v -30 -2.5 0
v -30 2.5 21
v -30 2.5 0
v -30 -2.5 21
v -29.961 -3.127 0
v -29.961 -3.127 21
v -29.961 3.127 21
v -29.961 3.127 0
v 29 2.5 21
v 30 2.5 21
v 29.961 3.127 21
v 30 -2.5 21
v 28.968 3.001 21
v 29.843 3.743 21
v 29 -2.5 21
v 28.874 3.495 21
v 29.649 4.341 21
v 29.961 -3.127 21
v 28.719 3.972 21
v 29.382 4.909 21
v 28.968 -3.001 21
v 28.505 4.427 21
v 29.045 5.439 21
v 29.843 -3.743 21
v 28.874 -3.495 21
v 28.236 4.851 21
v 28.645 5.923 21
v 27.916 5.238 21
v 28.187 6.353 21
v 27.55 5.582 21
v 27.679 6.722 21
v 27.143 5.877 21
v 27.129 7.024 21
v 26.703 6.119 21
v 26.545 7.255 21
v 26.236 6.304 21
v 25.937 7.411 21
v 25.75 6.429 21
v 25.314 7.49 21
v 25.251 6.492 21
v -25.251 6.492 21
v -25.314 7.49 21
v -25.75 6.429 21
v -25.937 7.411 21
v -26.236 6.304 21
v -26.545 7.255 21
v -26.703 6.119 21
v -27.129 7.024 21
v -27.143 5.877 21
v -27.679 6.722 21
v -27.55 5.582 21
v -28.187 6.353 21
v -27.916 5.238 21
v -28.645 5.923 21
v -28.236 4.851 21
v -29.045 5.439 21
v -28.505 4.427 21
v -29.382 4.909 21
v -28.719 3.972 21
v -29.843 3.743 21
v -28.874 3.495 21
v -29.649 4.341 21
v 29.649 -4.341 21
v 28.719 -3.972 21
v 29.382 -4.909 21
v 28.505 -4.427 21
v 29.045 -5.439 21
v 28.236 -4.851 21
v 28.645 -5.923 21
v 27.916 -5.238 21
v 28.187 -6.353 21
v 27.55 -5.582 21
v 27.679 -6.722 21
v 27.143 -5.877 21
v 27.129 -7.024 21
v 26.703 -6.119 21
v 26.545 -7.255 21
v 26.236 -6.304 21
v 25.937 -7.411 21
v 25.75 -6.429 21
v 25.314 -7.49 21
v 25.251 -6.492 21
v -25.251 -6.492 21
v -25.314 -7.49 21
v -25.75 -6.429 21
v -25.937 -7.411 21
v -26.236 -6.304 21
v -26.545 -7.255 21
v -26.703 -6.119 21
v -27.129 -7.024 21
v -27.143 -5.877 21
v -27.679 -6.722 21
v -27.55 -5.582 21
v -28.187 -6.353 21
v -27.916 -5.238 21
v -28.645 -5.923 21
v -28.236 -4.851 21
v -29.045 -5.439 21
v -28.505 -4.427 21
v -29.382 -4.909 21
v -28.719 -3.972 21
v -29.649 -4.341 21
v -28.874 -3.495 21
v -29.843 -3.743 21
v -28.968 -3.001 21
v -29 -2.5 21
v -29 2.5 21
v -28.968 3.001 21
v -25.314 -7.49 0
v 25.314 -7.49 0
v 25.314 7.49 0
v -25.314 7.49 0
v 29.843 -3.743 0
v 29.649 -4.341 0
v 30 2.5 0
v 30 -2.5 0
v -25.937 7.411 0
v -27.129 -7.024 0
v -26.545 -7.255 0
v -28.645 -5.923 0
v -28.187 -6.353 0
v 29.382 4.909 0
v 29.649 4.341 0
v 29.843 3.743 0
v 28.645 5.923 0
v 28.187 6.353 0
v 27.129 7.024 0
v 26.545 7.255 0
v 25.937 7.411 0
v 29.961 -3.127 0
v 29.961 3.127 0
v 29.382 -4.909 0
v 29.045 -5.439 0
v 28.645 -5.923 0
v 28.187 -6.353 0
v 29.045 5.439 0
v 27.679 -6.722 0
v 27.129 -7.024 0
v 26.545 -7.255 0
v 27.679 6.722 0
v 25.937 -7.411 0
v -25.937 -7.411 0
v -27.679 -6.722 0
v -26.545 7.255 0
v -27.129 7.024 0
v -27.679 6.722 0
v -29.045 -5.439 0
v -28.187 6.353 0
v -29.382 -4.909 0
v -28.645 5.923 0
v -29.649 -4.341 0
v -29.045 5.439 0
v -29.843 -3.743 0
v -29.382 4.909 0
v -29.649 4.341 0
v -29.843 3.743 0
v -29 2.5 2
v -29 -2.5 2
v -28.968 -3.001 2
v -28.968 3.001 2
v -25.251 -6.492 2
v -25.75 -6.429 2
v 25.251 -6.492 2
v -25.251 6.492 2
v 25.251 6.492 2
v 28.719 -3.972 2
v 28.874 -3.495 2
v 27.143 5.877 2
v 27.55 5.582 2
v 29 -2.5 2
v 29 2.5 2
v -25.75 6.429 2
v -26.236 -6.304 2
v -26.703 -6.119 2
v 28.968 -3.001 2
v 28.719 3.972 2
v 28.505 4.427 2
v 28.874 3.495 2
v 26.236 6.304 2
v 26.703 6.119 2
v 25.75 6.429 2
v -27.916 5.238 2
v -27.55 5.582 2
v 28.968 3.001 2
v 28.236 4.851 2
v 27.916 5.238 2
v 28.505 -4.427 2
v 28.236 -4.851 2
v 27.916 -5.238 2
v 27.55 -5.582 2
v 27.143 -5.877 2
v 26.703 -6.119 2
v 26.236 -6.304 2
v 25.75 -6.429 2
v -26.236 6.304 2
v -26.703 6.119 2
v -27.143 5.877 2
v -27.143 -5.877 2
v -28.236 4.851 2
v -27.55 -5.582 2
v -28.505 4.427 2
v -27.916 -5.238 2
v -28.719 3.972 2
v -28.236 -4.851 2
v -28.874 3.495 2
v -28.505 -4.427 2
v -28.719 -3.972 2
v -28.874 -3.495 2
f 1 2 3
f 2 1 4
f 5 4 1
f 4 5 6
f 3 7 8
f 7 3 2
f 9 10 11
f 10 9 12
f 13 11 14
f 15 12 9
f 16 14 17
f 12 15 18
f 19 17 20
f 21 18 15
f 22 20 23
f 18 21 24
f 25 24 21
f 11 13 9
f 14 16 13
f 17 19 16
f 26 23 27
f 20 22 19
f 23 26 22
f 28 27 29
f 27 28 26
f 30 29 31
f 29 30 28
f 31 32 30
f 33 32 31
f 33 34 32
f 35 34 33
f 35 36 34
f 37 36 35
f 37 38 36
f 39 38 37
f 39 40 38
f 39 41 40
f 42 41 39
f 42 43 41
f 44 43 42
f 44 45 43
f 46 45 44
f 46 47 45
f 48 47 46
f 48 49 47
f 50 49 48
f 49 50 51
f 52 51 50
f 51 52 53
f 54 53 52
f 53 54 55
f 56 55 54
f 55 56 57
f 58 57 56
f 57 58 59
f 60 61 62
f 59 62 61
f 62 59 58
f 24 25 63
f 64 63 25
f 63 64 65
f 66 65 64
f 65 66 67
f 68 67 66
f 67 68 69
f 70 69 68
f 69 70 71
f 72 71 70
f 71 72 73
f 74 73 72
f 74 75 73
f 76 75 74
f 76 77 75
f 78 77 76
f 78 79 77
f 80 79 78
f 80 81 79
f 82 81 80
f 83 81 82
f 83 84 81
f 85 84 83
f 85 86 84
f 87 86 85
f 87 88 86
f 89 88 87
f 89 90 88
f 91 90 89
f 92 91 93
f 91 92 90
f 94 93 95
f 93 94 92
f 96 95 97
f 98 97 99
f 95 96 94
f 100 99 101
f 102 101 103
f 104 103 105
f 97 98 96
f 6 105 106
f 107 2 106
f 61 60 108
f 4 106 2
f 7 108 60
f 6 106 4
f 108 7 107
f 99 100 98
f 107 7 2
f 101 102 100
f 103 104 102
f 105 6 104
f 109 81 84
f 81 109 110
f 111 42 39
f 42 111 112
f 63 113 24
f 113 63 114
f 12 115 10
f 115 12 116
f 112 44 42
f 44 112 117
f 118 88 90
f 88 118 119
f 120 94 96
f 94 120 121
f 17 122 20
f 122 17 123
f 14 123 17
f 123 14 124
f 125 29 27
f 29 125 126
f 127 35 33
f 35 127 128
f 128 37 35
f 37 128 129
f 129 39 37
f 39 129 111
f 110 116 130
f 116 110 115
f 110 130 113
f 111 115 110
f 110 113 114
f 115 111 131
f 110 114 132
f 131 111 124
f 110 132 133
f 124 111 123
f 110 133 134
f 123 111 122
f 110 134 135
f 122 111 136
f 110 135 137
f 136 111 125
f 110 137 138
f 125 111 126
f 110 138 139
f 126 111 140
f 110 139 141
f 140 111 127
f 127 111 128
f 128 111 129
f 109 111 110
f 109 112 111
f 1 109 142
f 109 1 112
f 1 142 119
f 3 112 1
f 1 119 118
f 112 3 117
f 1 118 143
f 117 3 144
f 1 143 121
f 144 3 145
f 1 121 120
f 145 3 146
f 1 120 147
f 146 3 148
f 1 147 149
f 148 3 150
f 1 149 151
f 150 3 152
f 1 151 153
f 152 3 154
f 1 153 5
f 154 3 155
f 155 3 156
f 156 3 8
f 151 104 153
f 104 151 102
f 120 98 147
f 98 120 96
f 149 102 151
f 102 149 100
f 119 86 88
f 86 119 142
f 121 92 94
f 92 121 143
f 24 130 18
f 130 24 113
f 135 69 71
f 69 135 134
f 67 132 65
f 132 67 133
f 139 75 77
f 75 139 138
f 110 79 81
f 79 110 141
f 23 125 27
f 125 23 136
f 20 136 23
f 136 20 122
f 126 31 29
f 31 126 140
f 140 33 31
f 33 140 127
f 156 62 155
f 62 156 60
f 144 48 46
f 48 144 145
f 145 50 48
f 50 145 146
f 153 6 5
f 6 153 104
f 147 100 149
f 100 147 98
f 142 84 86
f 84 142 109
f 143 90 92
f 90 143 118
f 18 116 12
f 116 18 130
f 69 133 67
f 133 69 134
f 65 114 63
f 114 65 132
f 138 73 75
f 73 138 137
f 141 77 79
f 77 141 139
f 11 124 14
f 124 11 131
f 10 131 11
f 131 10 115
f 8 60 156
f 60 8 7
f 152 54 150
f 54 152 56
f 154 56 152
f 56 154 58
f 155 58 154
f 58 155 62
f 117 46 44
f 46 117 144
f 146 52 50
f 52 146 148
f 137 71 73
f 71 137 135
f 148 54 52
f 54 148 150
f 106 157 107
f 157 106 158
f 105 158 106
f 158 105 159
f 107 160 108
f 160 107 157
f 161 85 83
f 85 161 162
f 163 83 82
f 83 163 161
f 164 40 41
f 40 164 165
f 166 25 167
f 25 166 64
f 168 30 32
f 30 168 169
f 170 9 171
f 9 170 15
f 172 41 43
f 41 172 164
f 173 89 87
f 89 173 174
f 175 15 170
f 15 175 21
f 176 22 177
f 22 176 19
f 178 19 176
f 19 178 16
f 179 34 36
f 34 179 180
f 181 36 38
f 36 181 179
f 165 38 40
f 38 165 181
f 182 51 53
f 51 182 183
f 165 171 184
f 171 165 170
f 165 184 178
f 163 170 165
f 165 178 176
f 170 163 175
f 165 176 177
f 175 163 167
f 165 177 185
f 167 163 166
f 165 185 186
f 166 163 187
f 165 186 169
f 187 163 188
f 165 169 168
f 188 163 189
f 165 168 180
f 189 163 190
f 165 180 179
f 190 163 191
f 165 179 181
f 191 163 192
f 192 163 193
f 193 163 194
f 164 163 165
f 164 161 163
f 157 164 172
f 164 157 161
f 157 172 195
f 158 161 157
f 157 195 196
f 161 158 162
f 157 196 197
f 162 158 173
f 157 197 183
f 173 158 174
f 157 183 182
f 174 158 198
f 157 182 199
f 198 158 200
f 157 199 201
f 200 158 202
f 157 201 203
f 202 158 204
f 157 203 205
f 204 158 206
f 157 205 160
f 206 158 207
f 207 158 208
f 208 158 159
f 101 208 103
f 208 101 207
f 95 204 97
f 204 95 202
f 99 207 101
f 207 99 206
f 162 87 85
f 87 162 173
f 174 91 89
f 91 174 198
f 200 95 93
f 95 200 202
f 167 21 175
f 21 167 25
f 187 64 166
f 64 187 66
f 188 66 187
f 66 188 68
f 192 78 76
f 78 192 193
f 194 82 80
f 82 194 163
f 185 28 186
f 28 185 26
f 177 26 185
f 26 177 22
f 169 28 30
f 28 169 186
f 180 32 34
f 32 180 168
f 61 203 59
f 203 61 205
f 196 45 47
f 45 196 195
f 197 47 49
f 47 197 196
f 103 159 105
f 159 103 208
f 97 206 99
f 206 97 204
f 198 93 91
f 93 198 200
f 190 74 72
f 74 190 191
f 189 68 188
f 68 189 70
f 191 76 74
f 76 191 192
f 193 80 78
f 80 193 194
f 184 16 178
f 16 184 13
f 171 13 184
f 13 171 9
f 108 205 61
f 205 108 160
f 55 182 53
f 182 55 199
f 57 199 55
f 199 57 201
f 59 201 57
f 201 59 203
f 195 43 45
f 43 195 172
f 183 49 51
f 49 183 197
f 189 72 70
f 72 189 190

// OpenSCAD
$fn = 50;


difference() {
	union() {
		hull() {
			translate(v = [-25.0000000000, 2.5000000000, 0]) {
				cylinder(h = 21, r = 5);
			}
			translate(v = [25.0000000000, 2.5000000000, 0]) {
				cylinder(h = 21, r = 5);
			}
			translate(v = [-25.0000000000, -2.5000000000, 0]) {
				cylinder(h = 21, r = 5);
			}
			translate(v = [25.0000000000, -2.5000000000, 0]) {
				cylinder(h = 21, r = 5);
			}
		}
	}
	union() {
		translate(v = [0, 0, 2]) {
			#hull() {
				translate(v = [-25.0000000000, 2.5000000000, 0]) {
					cylinder(h = 19, r = 4);
				}
				translate(v = [25.0000000000, 2.5000000000, 0]) {
					cylinder(h = 19, r = 4);
				}
				translate(v = [-25.0000000000, -2.5000000000, 0]) {
					cylinder(h = 19, r = 4);
				}
				translate(v = [25.0000000000, -2.5000000000, 0]) {
					cylinder(h = 19, r = 4);
				}
			}
		}
	}
}
